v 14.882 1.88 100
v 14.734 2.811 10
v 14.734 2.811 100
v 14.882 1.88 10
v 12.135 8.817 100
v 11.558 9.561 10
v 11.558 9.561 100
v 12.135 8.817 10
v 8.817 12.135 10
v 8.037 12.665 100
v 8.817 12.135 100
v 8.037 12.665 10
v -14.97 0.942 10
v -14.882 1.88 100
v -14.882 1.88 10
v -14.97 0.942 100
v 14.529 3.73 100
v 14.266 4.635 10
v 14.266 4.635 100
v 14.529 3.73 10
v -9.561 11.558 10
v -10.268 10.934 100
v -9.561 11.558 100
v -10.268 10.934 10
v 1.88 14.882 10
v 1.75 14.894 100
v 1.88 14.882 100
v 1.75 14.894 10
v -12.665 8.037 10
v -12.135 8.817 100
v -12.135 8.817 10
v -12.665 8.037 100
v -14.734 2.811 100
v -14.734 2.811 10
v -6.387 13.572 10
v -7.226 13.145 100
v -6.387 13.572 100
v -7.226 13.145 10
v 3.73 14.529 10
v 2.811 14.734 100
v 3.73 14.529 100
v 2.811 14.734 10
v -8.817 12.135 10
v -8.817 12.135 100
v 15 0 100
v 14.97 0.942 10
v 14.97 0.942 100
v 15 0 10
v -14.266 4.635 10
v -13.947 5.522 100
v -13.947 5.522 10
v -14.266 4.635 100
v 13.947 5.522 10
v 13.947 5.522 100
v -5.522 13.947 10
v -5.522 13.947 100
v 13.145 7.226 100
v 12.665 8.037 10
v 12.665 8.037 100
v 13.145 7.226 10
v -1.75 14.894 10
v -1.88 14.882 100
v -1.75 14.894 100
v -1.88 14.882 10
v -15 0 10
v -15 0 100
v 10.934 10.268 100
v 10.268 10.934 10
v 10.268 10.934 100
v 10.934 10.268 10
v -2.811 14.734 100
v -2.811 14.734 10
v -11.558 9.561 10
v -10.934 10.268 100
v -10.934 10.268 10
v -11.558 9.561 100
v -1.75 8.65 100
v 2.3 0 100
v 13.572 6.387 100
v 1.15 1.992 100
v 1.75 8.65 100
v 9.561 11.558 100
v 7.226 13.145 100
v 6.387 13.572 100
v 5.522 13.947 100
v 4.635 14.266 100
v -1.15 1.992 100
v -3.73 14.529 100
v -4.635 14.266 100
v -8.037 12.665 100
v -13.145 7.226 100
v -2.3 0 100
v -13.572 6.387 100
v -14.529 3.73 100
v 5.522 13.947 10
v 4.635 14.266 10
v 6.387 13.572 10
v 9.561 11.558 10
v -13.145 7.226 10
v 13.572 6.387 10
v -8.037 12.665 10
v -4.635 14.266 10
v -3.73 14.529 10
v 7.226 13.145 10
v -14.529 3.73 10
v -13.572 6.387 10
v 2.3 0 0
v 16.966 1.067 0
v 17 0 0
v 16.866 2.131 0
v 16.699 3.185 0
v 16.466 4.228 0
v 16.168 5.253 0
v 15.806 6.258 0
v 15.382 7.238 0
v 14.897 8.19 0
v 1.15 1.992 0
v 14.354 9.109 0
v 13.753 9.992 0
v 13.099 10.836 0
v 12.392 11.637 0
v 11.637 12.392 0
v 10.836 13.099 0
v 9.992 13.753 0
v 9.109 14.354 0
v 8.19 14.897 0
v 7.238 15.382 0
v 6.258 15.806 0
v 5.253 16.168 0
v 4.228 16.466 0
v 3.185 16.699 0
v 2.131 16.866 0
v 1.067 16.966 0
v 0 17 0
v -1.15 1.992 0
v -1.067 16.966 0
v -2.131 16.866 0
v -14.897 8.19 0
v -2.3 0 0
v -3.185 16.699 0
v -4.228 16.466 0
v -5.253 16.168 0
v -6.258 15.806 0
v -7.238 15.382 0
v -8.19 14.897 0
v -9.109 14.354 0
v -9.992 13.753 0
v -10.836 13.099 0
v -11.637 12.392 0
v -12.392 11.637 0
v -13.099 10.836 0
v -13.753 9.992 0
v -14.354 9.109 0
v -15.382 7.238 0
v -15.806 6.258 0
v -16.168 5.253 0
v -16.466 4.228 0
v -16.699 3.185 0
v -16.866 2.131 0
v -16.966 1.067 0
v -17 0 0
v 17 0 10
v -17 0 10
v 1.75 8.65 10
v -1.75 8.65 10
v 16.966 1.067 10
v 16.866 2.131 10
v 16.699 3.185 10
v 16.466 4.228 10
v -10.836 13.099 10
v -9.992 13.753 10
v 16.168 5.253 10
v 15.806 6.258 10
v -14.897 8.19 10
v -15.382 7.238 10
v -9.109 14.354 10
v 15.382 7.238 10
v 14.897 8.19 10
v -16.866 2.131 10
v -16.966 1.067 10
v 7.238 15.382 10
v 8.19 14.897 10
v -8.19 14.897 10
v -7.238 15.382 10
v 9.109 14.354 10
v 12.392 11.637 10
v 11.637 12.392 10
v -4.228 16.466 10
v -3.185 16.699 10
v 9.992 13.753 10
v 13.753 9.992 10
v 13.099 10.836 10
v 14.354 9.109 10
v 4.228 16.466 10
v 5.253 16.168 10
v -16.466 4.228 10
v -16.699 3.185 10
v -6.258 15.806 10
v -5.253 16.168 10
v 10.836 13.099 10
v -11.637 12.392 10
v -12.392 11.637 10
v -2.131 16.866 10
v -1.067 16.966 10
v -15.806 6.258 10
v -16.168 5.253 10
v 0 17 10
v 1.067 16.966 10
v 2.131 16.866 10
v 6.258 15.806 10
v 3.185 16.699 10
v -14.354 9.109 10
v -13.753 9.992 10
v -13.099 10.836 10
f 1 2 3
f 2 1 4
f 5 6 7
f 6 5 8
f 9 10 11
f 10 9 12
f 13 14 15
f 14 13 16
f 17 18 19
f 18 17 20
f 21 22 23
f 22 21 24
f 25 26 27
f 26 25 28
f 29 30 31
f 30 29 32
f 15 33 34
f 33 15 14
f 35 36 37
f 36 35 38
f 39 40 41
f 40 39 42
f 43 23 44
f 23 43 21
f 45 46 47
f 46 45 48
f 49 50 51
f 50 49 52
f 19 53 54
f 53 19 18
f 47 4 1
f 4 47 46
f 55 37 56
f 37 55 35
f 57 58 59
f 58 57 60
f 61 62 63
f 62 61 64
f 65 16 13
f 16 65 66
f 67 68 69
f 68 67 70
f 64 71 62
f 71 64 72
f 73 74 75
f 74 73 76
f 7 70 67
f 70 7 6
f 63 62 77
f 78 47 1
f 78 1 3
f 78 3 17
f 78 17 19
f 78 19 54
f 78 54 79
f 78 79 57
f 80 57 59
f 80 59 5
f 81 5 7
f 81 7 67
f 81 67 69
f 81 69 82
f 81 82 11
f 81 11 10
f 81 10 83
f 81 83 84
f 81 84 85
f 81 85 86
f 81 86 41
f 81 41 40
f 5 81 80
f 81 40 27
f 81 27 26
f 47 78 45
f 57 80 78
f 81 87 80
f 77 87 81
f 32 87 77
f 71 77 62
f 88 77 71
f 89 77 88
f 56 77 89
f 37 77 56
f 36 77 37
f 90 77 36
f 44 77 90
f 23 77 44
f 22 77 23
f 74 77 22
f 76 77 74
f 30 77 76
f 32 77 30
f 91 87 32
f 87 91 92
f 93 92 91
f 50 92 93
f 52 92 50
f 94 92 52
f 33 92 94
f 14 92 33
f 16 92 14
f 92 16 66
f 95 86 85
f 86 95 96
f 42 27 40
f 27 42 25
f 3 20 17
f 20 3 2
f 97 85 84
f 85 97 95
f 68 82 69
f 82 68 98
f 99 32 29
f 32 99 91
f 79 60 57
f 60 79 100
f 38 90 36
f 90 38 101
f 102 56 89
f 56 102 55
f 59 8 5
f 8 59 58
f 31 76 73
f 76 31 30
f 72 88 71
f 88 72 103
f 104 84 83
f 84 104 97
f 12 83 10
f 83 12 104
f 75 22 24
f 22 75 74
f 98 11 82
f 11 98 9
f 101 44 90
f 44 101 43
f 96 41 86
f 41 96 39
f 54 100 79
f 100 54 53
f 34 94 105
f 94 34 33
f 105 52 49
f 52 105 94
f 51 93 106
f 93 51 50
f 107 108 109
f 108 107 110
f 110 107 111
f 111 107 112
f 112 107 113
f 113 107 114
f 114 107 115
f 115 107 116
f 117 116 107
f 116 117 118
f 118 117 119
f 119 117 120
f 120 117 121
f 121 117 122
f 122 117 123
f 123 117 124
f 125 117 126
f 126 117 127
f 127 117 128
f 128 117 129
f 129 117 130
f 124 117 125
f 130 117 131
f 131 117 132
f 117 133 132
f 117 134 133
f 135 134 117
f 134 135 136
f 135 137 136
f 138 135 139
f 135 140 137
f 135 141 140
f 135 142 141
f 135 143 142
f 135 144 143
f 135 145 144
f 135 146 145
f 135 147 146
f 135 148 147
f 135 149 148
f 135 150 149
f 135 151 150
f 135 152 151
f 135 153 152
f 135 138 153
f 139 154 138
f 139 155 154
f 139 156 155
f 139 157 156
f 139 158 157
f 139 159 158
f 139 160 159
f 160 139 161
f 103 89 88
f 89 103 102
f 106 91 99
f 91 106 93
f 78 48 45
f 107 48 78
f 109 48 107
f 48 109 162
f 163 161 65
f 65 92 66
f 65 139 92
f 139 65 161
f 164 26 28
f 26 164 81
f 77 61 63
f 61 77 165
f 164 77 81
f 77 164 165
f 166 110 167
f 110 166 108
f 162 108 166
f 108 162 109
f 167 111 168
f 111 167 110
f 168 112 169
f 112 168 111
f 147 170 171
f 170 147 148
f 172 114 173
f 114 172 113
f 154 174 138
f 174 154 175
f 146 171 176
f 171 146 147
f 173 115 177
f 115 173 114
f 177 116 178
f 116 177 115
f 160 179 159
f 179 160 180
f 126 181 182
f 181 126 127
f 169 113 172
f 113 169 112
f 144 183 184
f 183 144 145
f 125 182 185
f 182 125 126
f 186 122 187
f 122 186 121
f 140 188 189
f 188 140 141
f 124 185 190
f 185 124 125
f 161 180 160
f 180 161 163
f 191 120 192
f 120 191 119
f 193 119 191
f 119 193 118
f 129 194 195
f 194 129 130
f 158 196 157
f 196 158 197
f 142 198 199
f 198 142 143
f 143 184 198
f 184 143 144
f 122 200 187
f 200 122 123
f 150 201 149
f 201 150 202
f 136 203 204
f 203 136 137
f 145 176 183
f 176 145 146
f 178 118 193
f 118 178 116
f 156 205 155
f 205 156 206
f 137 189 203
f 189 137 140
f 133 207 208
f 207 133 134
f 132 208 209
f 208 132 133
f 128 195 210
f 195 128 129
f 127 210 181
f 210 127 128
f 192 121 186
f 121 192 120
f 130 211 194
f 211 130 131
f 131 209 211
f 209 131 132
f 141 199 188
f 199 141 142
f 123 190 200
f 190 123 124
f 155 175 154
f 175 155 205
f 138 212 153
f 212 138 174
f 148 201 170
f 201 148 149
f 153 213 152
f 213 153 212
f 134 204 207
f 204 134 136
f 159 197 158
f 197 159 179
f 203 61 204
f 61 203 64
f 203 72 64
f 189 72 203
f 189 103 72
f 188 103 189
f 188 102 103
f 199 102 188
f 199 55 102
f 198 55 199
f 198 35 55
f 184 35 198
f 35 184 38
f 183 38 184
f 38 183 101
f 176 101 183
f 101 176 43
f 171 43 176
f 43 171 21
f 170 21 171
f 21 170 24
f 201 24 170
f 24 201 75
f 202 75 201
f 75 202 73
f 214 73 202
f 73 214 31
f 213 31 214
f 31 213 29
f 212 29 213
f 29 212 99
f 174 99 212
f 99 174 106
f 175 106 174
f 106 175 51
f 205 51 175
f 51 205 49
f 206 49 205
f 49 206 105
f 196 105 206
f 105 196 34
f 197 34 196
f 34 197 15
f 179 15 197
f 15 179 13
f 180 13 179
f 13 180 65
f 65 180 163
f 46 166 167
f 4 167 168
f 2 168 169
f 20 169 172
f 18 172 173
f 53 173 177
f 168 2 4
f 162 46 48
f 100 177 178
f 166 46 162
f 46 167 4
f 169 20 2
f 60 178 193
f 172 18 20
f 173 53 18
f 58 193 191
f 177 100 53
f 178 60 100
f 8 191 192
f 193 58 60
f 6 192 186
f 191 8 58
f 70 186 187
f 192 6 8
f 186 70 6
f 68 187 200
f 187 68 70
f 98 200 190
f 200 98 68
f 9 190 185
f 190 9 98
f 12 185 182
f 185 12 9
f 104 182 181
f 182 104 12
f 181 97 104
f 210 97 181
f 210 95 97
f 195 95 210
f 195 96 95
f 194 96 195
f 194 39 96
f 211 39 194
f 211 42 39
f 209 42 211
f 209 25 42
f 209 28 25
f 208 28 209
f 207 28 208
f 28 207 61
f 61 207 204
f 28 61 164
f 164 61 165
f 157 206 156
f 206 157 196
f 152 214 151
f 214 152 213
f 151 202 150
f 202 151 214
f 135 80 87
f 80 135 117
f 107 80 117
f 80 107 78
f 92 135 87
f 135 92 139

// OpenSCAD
epsilon = 0.001;
$fn = 100;

module halfCylinder(height, r) {
    mirror([0, 1, 0])
    difference() {
        cylinder(height, r, r, $fn=$fn);
        translate([-r, 0, -epsilon])
            cube(size=[r*2+epsilon, r*2+2*epsilon, height+epsilon*2]);
    }
}

module halfShaft(height, outerR, centerR, wireR, centerFn=6) {
    difference(){
        union() {
            difference() {
                halfCylinder(height, outerR);
                translate([-wireR/2, (outerR + centerR)/2, -epsilon]) 
                    cube([wireR, height, (height+epsilon)*2]);
            }
            difference() {
                marginR = 2;
                r = outerR+marginR;
                translate([0, 0, 5])
                    cylinder(10, r, r, center=true);
                mirror ([0, 1, 0])
                    translate([-r, 0, -epsilon])
                        cube(size=[r*2+epsilon, r*2+2*epsilon, height+epsilon*2]);
            }
        }
        cylinder((height+epsilon)*2, centerR, centerR, center=true, $fn=centerFn);
    }
}

color("red") 
    halfShaft(height=100, outerR=15, centerR=2.3, wireR=3.5);
